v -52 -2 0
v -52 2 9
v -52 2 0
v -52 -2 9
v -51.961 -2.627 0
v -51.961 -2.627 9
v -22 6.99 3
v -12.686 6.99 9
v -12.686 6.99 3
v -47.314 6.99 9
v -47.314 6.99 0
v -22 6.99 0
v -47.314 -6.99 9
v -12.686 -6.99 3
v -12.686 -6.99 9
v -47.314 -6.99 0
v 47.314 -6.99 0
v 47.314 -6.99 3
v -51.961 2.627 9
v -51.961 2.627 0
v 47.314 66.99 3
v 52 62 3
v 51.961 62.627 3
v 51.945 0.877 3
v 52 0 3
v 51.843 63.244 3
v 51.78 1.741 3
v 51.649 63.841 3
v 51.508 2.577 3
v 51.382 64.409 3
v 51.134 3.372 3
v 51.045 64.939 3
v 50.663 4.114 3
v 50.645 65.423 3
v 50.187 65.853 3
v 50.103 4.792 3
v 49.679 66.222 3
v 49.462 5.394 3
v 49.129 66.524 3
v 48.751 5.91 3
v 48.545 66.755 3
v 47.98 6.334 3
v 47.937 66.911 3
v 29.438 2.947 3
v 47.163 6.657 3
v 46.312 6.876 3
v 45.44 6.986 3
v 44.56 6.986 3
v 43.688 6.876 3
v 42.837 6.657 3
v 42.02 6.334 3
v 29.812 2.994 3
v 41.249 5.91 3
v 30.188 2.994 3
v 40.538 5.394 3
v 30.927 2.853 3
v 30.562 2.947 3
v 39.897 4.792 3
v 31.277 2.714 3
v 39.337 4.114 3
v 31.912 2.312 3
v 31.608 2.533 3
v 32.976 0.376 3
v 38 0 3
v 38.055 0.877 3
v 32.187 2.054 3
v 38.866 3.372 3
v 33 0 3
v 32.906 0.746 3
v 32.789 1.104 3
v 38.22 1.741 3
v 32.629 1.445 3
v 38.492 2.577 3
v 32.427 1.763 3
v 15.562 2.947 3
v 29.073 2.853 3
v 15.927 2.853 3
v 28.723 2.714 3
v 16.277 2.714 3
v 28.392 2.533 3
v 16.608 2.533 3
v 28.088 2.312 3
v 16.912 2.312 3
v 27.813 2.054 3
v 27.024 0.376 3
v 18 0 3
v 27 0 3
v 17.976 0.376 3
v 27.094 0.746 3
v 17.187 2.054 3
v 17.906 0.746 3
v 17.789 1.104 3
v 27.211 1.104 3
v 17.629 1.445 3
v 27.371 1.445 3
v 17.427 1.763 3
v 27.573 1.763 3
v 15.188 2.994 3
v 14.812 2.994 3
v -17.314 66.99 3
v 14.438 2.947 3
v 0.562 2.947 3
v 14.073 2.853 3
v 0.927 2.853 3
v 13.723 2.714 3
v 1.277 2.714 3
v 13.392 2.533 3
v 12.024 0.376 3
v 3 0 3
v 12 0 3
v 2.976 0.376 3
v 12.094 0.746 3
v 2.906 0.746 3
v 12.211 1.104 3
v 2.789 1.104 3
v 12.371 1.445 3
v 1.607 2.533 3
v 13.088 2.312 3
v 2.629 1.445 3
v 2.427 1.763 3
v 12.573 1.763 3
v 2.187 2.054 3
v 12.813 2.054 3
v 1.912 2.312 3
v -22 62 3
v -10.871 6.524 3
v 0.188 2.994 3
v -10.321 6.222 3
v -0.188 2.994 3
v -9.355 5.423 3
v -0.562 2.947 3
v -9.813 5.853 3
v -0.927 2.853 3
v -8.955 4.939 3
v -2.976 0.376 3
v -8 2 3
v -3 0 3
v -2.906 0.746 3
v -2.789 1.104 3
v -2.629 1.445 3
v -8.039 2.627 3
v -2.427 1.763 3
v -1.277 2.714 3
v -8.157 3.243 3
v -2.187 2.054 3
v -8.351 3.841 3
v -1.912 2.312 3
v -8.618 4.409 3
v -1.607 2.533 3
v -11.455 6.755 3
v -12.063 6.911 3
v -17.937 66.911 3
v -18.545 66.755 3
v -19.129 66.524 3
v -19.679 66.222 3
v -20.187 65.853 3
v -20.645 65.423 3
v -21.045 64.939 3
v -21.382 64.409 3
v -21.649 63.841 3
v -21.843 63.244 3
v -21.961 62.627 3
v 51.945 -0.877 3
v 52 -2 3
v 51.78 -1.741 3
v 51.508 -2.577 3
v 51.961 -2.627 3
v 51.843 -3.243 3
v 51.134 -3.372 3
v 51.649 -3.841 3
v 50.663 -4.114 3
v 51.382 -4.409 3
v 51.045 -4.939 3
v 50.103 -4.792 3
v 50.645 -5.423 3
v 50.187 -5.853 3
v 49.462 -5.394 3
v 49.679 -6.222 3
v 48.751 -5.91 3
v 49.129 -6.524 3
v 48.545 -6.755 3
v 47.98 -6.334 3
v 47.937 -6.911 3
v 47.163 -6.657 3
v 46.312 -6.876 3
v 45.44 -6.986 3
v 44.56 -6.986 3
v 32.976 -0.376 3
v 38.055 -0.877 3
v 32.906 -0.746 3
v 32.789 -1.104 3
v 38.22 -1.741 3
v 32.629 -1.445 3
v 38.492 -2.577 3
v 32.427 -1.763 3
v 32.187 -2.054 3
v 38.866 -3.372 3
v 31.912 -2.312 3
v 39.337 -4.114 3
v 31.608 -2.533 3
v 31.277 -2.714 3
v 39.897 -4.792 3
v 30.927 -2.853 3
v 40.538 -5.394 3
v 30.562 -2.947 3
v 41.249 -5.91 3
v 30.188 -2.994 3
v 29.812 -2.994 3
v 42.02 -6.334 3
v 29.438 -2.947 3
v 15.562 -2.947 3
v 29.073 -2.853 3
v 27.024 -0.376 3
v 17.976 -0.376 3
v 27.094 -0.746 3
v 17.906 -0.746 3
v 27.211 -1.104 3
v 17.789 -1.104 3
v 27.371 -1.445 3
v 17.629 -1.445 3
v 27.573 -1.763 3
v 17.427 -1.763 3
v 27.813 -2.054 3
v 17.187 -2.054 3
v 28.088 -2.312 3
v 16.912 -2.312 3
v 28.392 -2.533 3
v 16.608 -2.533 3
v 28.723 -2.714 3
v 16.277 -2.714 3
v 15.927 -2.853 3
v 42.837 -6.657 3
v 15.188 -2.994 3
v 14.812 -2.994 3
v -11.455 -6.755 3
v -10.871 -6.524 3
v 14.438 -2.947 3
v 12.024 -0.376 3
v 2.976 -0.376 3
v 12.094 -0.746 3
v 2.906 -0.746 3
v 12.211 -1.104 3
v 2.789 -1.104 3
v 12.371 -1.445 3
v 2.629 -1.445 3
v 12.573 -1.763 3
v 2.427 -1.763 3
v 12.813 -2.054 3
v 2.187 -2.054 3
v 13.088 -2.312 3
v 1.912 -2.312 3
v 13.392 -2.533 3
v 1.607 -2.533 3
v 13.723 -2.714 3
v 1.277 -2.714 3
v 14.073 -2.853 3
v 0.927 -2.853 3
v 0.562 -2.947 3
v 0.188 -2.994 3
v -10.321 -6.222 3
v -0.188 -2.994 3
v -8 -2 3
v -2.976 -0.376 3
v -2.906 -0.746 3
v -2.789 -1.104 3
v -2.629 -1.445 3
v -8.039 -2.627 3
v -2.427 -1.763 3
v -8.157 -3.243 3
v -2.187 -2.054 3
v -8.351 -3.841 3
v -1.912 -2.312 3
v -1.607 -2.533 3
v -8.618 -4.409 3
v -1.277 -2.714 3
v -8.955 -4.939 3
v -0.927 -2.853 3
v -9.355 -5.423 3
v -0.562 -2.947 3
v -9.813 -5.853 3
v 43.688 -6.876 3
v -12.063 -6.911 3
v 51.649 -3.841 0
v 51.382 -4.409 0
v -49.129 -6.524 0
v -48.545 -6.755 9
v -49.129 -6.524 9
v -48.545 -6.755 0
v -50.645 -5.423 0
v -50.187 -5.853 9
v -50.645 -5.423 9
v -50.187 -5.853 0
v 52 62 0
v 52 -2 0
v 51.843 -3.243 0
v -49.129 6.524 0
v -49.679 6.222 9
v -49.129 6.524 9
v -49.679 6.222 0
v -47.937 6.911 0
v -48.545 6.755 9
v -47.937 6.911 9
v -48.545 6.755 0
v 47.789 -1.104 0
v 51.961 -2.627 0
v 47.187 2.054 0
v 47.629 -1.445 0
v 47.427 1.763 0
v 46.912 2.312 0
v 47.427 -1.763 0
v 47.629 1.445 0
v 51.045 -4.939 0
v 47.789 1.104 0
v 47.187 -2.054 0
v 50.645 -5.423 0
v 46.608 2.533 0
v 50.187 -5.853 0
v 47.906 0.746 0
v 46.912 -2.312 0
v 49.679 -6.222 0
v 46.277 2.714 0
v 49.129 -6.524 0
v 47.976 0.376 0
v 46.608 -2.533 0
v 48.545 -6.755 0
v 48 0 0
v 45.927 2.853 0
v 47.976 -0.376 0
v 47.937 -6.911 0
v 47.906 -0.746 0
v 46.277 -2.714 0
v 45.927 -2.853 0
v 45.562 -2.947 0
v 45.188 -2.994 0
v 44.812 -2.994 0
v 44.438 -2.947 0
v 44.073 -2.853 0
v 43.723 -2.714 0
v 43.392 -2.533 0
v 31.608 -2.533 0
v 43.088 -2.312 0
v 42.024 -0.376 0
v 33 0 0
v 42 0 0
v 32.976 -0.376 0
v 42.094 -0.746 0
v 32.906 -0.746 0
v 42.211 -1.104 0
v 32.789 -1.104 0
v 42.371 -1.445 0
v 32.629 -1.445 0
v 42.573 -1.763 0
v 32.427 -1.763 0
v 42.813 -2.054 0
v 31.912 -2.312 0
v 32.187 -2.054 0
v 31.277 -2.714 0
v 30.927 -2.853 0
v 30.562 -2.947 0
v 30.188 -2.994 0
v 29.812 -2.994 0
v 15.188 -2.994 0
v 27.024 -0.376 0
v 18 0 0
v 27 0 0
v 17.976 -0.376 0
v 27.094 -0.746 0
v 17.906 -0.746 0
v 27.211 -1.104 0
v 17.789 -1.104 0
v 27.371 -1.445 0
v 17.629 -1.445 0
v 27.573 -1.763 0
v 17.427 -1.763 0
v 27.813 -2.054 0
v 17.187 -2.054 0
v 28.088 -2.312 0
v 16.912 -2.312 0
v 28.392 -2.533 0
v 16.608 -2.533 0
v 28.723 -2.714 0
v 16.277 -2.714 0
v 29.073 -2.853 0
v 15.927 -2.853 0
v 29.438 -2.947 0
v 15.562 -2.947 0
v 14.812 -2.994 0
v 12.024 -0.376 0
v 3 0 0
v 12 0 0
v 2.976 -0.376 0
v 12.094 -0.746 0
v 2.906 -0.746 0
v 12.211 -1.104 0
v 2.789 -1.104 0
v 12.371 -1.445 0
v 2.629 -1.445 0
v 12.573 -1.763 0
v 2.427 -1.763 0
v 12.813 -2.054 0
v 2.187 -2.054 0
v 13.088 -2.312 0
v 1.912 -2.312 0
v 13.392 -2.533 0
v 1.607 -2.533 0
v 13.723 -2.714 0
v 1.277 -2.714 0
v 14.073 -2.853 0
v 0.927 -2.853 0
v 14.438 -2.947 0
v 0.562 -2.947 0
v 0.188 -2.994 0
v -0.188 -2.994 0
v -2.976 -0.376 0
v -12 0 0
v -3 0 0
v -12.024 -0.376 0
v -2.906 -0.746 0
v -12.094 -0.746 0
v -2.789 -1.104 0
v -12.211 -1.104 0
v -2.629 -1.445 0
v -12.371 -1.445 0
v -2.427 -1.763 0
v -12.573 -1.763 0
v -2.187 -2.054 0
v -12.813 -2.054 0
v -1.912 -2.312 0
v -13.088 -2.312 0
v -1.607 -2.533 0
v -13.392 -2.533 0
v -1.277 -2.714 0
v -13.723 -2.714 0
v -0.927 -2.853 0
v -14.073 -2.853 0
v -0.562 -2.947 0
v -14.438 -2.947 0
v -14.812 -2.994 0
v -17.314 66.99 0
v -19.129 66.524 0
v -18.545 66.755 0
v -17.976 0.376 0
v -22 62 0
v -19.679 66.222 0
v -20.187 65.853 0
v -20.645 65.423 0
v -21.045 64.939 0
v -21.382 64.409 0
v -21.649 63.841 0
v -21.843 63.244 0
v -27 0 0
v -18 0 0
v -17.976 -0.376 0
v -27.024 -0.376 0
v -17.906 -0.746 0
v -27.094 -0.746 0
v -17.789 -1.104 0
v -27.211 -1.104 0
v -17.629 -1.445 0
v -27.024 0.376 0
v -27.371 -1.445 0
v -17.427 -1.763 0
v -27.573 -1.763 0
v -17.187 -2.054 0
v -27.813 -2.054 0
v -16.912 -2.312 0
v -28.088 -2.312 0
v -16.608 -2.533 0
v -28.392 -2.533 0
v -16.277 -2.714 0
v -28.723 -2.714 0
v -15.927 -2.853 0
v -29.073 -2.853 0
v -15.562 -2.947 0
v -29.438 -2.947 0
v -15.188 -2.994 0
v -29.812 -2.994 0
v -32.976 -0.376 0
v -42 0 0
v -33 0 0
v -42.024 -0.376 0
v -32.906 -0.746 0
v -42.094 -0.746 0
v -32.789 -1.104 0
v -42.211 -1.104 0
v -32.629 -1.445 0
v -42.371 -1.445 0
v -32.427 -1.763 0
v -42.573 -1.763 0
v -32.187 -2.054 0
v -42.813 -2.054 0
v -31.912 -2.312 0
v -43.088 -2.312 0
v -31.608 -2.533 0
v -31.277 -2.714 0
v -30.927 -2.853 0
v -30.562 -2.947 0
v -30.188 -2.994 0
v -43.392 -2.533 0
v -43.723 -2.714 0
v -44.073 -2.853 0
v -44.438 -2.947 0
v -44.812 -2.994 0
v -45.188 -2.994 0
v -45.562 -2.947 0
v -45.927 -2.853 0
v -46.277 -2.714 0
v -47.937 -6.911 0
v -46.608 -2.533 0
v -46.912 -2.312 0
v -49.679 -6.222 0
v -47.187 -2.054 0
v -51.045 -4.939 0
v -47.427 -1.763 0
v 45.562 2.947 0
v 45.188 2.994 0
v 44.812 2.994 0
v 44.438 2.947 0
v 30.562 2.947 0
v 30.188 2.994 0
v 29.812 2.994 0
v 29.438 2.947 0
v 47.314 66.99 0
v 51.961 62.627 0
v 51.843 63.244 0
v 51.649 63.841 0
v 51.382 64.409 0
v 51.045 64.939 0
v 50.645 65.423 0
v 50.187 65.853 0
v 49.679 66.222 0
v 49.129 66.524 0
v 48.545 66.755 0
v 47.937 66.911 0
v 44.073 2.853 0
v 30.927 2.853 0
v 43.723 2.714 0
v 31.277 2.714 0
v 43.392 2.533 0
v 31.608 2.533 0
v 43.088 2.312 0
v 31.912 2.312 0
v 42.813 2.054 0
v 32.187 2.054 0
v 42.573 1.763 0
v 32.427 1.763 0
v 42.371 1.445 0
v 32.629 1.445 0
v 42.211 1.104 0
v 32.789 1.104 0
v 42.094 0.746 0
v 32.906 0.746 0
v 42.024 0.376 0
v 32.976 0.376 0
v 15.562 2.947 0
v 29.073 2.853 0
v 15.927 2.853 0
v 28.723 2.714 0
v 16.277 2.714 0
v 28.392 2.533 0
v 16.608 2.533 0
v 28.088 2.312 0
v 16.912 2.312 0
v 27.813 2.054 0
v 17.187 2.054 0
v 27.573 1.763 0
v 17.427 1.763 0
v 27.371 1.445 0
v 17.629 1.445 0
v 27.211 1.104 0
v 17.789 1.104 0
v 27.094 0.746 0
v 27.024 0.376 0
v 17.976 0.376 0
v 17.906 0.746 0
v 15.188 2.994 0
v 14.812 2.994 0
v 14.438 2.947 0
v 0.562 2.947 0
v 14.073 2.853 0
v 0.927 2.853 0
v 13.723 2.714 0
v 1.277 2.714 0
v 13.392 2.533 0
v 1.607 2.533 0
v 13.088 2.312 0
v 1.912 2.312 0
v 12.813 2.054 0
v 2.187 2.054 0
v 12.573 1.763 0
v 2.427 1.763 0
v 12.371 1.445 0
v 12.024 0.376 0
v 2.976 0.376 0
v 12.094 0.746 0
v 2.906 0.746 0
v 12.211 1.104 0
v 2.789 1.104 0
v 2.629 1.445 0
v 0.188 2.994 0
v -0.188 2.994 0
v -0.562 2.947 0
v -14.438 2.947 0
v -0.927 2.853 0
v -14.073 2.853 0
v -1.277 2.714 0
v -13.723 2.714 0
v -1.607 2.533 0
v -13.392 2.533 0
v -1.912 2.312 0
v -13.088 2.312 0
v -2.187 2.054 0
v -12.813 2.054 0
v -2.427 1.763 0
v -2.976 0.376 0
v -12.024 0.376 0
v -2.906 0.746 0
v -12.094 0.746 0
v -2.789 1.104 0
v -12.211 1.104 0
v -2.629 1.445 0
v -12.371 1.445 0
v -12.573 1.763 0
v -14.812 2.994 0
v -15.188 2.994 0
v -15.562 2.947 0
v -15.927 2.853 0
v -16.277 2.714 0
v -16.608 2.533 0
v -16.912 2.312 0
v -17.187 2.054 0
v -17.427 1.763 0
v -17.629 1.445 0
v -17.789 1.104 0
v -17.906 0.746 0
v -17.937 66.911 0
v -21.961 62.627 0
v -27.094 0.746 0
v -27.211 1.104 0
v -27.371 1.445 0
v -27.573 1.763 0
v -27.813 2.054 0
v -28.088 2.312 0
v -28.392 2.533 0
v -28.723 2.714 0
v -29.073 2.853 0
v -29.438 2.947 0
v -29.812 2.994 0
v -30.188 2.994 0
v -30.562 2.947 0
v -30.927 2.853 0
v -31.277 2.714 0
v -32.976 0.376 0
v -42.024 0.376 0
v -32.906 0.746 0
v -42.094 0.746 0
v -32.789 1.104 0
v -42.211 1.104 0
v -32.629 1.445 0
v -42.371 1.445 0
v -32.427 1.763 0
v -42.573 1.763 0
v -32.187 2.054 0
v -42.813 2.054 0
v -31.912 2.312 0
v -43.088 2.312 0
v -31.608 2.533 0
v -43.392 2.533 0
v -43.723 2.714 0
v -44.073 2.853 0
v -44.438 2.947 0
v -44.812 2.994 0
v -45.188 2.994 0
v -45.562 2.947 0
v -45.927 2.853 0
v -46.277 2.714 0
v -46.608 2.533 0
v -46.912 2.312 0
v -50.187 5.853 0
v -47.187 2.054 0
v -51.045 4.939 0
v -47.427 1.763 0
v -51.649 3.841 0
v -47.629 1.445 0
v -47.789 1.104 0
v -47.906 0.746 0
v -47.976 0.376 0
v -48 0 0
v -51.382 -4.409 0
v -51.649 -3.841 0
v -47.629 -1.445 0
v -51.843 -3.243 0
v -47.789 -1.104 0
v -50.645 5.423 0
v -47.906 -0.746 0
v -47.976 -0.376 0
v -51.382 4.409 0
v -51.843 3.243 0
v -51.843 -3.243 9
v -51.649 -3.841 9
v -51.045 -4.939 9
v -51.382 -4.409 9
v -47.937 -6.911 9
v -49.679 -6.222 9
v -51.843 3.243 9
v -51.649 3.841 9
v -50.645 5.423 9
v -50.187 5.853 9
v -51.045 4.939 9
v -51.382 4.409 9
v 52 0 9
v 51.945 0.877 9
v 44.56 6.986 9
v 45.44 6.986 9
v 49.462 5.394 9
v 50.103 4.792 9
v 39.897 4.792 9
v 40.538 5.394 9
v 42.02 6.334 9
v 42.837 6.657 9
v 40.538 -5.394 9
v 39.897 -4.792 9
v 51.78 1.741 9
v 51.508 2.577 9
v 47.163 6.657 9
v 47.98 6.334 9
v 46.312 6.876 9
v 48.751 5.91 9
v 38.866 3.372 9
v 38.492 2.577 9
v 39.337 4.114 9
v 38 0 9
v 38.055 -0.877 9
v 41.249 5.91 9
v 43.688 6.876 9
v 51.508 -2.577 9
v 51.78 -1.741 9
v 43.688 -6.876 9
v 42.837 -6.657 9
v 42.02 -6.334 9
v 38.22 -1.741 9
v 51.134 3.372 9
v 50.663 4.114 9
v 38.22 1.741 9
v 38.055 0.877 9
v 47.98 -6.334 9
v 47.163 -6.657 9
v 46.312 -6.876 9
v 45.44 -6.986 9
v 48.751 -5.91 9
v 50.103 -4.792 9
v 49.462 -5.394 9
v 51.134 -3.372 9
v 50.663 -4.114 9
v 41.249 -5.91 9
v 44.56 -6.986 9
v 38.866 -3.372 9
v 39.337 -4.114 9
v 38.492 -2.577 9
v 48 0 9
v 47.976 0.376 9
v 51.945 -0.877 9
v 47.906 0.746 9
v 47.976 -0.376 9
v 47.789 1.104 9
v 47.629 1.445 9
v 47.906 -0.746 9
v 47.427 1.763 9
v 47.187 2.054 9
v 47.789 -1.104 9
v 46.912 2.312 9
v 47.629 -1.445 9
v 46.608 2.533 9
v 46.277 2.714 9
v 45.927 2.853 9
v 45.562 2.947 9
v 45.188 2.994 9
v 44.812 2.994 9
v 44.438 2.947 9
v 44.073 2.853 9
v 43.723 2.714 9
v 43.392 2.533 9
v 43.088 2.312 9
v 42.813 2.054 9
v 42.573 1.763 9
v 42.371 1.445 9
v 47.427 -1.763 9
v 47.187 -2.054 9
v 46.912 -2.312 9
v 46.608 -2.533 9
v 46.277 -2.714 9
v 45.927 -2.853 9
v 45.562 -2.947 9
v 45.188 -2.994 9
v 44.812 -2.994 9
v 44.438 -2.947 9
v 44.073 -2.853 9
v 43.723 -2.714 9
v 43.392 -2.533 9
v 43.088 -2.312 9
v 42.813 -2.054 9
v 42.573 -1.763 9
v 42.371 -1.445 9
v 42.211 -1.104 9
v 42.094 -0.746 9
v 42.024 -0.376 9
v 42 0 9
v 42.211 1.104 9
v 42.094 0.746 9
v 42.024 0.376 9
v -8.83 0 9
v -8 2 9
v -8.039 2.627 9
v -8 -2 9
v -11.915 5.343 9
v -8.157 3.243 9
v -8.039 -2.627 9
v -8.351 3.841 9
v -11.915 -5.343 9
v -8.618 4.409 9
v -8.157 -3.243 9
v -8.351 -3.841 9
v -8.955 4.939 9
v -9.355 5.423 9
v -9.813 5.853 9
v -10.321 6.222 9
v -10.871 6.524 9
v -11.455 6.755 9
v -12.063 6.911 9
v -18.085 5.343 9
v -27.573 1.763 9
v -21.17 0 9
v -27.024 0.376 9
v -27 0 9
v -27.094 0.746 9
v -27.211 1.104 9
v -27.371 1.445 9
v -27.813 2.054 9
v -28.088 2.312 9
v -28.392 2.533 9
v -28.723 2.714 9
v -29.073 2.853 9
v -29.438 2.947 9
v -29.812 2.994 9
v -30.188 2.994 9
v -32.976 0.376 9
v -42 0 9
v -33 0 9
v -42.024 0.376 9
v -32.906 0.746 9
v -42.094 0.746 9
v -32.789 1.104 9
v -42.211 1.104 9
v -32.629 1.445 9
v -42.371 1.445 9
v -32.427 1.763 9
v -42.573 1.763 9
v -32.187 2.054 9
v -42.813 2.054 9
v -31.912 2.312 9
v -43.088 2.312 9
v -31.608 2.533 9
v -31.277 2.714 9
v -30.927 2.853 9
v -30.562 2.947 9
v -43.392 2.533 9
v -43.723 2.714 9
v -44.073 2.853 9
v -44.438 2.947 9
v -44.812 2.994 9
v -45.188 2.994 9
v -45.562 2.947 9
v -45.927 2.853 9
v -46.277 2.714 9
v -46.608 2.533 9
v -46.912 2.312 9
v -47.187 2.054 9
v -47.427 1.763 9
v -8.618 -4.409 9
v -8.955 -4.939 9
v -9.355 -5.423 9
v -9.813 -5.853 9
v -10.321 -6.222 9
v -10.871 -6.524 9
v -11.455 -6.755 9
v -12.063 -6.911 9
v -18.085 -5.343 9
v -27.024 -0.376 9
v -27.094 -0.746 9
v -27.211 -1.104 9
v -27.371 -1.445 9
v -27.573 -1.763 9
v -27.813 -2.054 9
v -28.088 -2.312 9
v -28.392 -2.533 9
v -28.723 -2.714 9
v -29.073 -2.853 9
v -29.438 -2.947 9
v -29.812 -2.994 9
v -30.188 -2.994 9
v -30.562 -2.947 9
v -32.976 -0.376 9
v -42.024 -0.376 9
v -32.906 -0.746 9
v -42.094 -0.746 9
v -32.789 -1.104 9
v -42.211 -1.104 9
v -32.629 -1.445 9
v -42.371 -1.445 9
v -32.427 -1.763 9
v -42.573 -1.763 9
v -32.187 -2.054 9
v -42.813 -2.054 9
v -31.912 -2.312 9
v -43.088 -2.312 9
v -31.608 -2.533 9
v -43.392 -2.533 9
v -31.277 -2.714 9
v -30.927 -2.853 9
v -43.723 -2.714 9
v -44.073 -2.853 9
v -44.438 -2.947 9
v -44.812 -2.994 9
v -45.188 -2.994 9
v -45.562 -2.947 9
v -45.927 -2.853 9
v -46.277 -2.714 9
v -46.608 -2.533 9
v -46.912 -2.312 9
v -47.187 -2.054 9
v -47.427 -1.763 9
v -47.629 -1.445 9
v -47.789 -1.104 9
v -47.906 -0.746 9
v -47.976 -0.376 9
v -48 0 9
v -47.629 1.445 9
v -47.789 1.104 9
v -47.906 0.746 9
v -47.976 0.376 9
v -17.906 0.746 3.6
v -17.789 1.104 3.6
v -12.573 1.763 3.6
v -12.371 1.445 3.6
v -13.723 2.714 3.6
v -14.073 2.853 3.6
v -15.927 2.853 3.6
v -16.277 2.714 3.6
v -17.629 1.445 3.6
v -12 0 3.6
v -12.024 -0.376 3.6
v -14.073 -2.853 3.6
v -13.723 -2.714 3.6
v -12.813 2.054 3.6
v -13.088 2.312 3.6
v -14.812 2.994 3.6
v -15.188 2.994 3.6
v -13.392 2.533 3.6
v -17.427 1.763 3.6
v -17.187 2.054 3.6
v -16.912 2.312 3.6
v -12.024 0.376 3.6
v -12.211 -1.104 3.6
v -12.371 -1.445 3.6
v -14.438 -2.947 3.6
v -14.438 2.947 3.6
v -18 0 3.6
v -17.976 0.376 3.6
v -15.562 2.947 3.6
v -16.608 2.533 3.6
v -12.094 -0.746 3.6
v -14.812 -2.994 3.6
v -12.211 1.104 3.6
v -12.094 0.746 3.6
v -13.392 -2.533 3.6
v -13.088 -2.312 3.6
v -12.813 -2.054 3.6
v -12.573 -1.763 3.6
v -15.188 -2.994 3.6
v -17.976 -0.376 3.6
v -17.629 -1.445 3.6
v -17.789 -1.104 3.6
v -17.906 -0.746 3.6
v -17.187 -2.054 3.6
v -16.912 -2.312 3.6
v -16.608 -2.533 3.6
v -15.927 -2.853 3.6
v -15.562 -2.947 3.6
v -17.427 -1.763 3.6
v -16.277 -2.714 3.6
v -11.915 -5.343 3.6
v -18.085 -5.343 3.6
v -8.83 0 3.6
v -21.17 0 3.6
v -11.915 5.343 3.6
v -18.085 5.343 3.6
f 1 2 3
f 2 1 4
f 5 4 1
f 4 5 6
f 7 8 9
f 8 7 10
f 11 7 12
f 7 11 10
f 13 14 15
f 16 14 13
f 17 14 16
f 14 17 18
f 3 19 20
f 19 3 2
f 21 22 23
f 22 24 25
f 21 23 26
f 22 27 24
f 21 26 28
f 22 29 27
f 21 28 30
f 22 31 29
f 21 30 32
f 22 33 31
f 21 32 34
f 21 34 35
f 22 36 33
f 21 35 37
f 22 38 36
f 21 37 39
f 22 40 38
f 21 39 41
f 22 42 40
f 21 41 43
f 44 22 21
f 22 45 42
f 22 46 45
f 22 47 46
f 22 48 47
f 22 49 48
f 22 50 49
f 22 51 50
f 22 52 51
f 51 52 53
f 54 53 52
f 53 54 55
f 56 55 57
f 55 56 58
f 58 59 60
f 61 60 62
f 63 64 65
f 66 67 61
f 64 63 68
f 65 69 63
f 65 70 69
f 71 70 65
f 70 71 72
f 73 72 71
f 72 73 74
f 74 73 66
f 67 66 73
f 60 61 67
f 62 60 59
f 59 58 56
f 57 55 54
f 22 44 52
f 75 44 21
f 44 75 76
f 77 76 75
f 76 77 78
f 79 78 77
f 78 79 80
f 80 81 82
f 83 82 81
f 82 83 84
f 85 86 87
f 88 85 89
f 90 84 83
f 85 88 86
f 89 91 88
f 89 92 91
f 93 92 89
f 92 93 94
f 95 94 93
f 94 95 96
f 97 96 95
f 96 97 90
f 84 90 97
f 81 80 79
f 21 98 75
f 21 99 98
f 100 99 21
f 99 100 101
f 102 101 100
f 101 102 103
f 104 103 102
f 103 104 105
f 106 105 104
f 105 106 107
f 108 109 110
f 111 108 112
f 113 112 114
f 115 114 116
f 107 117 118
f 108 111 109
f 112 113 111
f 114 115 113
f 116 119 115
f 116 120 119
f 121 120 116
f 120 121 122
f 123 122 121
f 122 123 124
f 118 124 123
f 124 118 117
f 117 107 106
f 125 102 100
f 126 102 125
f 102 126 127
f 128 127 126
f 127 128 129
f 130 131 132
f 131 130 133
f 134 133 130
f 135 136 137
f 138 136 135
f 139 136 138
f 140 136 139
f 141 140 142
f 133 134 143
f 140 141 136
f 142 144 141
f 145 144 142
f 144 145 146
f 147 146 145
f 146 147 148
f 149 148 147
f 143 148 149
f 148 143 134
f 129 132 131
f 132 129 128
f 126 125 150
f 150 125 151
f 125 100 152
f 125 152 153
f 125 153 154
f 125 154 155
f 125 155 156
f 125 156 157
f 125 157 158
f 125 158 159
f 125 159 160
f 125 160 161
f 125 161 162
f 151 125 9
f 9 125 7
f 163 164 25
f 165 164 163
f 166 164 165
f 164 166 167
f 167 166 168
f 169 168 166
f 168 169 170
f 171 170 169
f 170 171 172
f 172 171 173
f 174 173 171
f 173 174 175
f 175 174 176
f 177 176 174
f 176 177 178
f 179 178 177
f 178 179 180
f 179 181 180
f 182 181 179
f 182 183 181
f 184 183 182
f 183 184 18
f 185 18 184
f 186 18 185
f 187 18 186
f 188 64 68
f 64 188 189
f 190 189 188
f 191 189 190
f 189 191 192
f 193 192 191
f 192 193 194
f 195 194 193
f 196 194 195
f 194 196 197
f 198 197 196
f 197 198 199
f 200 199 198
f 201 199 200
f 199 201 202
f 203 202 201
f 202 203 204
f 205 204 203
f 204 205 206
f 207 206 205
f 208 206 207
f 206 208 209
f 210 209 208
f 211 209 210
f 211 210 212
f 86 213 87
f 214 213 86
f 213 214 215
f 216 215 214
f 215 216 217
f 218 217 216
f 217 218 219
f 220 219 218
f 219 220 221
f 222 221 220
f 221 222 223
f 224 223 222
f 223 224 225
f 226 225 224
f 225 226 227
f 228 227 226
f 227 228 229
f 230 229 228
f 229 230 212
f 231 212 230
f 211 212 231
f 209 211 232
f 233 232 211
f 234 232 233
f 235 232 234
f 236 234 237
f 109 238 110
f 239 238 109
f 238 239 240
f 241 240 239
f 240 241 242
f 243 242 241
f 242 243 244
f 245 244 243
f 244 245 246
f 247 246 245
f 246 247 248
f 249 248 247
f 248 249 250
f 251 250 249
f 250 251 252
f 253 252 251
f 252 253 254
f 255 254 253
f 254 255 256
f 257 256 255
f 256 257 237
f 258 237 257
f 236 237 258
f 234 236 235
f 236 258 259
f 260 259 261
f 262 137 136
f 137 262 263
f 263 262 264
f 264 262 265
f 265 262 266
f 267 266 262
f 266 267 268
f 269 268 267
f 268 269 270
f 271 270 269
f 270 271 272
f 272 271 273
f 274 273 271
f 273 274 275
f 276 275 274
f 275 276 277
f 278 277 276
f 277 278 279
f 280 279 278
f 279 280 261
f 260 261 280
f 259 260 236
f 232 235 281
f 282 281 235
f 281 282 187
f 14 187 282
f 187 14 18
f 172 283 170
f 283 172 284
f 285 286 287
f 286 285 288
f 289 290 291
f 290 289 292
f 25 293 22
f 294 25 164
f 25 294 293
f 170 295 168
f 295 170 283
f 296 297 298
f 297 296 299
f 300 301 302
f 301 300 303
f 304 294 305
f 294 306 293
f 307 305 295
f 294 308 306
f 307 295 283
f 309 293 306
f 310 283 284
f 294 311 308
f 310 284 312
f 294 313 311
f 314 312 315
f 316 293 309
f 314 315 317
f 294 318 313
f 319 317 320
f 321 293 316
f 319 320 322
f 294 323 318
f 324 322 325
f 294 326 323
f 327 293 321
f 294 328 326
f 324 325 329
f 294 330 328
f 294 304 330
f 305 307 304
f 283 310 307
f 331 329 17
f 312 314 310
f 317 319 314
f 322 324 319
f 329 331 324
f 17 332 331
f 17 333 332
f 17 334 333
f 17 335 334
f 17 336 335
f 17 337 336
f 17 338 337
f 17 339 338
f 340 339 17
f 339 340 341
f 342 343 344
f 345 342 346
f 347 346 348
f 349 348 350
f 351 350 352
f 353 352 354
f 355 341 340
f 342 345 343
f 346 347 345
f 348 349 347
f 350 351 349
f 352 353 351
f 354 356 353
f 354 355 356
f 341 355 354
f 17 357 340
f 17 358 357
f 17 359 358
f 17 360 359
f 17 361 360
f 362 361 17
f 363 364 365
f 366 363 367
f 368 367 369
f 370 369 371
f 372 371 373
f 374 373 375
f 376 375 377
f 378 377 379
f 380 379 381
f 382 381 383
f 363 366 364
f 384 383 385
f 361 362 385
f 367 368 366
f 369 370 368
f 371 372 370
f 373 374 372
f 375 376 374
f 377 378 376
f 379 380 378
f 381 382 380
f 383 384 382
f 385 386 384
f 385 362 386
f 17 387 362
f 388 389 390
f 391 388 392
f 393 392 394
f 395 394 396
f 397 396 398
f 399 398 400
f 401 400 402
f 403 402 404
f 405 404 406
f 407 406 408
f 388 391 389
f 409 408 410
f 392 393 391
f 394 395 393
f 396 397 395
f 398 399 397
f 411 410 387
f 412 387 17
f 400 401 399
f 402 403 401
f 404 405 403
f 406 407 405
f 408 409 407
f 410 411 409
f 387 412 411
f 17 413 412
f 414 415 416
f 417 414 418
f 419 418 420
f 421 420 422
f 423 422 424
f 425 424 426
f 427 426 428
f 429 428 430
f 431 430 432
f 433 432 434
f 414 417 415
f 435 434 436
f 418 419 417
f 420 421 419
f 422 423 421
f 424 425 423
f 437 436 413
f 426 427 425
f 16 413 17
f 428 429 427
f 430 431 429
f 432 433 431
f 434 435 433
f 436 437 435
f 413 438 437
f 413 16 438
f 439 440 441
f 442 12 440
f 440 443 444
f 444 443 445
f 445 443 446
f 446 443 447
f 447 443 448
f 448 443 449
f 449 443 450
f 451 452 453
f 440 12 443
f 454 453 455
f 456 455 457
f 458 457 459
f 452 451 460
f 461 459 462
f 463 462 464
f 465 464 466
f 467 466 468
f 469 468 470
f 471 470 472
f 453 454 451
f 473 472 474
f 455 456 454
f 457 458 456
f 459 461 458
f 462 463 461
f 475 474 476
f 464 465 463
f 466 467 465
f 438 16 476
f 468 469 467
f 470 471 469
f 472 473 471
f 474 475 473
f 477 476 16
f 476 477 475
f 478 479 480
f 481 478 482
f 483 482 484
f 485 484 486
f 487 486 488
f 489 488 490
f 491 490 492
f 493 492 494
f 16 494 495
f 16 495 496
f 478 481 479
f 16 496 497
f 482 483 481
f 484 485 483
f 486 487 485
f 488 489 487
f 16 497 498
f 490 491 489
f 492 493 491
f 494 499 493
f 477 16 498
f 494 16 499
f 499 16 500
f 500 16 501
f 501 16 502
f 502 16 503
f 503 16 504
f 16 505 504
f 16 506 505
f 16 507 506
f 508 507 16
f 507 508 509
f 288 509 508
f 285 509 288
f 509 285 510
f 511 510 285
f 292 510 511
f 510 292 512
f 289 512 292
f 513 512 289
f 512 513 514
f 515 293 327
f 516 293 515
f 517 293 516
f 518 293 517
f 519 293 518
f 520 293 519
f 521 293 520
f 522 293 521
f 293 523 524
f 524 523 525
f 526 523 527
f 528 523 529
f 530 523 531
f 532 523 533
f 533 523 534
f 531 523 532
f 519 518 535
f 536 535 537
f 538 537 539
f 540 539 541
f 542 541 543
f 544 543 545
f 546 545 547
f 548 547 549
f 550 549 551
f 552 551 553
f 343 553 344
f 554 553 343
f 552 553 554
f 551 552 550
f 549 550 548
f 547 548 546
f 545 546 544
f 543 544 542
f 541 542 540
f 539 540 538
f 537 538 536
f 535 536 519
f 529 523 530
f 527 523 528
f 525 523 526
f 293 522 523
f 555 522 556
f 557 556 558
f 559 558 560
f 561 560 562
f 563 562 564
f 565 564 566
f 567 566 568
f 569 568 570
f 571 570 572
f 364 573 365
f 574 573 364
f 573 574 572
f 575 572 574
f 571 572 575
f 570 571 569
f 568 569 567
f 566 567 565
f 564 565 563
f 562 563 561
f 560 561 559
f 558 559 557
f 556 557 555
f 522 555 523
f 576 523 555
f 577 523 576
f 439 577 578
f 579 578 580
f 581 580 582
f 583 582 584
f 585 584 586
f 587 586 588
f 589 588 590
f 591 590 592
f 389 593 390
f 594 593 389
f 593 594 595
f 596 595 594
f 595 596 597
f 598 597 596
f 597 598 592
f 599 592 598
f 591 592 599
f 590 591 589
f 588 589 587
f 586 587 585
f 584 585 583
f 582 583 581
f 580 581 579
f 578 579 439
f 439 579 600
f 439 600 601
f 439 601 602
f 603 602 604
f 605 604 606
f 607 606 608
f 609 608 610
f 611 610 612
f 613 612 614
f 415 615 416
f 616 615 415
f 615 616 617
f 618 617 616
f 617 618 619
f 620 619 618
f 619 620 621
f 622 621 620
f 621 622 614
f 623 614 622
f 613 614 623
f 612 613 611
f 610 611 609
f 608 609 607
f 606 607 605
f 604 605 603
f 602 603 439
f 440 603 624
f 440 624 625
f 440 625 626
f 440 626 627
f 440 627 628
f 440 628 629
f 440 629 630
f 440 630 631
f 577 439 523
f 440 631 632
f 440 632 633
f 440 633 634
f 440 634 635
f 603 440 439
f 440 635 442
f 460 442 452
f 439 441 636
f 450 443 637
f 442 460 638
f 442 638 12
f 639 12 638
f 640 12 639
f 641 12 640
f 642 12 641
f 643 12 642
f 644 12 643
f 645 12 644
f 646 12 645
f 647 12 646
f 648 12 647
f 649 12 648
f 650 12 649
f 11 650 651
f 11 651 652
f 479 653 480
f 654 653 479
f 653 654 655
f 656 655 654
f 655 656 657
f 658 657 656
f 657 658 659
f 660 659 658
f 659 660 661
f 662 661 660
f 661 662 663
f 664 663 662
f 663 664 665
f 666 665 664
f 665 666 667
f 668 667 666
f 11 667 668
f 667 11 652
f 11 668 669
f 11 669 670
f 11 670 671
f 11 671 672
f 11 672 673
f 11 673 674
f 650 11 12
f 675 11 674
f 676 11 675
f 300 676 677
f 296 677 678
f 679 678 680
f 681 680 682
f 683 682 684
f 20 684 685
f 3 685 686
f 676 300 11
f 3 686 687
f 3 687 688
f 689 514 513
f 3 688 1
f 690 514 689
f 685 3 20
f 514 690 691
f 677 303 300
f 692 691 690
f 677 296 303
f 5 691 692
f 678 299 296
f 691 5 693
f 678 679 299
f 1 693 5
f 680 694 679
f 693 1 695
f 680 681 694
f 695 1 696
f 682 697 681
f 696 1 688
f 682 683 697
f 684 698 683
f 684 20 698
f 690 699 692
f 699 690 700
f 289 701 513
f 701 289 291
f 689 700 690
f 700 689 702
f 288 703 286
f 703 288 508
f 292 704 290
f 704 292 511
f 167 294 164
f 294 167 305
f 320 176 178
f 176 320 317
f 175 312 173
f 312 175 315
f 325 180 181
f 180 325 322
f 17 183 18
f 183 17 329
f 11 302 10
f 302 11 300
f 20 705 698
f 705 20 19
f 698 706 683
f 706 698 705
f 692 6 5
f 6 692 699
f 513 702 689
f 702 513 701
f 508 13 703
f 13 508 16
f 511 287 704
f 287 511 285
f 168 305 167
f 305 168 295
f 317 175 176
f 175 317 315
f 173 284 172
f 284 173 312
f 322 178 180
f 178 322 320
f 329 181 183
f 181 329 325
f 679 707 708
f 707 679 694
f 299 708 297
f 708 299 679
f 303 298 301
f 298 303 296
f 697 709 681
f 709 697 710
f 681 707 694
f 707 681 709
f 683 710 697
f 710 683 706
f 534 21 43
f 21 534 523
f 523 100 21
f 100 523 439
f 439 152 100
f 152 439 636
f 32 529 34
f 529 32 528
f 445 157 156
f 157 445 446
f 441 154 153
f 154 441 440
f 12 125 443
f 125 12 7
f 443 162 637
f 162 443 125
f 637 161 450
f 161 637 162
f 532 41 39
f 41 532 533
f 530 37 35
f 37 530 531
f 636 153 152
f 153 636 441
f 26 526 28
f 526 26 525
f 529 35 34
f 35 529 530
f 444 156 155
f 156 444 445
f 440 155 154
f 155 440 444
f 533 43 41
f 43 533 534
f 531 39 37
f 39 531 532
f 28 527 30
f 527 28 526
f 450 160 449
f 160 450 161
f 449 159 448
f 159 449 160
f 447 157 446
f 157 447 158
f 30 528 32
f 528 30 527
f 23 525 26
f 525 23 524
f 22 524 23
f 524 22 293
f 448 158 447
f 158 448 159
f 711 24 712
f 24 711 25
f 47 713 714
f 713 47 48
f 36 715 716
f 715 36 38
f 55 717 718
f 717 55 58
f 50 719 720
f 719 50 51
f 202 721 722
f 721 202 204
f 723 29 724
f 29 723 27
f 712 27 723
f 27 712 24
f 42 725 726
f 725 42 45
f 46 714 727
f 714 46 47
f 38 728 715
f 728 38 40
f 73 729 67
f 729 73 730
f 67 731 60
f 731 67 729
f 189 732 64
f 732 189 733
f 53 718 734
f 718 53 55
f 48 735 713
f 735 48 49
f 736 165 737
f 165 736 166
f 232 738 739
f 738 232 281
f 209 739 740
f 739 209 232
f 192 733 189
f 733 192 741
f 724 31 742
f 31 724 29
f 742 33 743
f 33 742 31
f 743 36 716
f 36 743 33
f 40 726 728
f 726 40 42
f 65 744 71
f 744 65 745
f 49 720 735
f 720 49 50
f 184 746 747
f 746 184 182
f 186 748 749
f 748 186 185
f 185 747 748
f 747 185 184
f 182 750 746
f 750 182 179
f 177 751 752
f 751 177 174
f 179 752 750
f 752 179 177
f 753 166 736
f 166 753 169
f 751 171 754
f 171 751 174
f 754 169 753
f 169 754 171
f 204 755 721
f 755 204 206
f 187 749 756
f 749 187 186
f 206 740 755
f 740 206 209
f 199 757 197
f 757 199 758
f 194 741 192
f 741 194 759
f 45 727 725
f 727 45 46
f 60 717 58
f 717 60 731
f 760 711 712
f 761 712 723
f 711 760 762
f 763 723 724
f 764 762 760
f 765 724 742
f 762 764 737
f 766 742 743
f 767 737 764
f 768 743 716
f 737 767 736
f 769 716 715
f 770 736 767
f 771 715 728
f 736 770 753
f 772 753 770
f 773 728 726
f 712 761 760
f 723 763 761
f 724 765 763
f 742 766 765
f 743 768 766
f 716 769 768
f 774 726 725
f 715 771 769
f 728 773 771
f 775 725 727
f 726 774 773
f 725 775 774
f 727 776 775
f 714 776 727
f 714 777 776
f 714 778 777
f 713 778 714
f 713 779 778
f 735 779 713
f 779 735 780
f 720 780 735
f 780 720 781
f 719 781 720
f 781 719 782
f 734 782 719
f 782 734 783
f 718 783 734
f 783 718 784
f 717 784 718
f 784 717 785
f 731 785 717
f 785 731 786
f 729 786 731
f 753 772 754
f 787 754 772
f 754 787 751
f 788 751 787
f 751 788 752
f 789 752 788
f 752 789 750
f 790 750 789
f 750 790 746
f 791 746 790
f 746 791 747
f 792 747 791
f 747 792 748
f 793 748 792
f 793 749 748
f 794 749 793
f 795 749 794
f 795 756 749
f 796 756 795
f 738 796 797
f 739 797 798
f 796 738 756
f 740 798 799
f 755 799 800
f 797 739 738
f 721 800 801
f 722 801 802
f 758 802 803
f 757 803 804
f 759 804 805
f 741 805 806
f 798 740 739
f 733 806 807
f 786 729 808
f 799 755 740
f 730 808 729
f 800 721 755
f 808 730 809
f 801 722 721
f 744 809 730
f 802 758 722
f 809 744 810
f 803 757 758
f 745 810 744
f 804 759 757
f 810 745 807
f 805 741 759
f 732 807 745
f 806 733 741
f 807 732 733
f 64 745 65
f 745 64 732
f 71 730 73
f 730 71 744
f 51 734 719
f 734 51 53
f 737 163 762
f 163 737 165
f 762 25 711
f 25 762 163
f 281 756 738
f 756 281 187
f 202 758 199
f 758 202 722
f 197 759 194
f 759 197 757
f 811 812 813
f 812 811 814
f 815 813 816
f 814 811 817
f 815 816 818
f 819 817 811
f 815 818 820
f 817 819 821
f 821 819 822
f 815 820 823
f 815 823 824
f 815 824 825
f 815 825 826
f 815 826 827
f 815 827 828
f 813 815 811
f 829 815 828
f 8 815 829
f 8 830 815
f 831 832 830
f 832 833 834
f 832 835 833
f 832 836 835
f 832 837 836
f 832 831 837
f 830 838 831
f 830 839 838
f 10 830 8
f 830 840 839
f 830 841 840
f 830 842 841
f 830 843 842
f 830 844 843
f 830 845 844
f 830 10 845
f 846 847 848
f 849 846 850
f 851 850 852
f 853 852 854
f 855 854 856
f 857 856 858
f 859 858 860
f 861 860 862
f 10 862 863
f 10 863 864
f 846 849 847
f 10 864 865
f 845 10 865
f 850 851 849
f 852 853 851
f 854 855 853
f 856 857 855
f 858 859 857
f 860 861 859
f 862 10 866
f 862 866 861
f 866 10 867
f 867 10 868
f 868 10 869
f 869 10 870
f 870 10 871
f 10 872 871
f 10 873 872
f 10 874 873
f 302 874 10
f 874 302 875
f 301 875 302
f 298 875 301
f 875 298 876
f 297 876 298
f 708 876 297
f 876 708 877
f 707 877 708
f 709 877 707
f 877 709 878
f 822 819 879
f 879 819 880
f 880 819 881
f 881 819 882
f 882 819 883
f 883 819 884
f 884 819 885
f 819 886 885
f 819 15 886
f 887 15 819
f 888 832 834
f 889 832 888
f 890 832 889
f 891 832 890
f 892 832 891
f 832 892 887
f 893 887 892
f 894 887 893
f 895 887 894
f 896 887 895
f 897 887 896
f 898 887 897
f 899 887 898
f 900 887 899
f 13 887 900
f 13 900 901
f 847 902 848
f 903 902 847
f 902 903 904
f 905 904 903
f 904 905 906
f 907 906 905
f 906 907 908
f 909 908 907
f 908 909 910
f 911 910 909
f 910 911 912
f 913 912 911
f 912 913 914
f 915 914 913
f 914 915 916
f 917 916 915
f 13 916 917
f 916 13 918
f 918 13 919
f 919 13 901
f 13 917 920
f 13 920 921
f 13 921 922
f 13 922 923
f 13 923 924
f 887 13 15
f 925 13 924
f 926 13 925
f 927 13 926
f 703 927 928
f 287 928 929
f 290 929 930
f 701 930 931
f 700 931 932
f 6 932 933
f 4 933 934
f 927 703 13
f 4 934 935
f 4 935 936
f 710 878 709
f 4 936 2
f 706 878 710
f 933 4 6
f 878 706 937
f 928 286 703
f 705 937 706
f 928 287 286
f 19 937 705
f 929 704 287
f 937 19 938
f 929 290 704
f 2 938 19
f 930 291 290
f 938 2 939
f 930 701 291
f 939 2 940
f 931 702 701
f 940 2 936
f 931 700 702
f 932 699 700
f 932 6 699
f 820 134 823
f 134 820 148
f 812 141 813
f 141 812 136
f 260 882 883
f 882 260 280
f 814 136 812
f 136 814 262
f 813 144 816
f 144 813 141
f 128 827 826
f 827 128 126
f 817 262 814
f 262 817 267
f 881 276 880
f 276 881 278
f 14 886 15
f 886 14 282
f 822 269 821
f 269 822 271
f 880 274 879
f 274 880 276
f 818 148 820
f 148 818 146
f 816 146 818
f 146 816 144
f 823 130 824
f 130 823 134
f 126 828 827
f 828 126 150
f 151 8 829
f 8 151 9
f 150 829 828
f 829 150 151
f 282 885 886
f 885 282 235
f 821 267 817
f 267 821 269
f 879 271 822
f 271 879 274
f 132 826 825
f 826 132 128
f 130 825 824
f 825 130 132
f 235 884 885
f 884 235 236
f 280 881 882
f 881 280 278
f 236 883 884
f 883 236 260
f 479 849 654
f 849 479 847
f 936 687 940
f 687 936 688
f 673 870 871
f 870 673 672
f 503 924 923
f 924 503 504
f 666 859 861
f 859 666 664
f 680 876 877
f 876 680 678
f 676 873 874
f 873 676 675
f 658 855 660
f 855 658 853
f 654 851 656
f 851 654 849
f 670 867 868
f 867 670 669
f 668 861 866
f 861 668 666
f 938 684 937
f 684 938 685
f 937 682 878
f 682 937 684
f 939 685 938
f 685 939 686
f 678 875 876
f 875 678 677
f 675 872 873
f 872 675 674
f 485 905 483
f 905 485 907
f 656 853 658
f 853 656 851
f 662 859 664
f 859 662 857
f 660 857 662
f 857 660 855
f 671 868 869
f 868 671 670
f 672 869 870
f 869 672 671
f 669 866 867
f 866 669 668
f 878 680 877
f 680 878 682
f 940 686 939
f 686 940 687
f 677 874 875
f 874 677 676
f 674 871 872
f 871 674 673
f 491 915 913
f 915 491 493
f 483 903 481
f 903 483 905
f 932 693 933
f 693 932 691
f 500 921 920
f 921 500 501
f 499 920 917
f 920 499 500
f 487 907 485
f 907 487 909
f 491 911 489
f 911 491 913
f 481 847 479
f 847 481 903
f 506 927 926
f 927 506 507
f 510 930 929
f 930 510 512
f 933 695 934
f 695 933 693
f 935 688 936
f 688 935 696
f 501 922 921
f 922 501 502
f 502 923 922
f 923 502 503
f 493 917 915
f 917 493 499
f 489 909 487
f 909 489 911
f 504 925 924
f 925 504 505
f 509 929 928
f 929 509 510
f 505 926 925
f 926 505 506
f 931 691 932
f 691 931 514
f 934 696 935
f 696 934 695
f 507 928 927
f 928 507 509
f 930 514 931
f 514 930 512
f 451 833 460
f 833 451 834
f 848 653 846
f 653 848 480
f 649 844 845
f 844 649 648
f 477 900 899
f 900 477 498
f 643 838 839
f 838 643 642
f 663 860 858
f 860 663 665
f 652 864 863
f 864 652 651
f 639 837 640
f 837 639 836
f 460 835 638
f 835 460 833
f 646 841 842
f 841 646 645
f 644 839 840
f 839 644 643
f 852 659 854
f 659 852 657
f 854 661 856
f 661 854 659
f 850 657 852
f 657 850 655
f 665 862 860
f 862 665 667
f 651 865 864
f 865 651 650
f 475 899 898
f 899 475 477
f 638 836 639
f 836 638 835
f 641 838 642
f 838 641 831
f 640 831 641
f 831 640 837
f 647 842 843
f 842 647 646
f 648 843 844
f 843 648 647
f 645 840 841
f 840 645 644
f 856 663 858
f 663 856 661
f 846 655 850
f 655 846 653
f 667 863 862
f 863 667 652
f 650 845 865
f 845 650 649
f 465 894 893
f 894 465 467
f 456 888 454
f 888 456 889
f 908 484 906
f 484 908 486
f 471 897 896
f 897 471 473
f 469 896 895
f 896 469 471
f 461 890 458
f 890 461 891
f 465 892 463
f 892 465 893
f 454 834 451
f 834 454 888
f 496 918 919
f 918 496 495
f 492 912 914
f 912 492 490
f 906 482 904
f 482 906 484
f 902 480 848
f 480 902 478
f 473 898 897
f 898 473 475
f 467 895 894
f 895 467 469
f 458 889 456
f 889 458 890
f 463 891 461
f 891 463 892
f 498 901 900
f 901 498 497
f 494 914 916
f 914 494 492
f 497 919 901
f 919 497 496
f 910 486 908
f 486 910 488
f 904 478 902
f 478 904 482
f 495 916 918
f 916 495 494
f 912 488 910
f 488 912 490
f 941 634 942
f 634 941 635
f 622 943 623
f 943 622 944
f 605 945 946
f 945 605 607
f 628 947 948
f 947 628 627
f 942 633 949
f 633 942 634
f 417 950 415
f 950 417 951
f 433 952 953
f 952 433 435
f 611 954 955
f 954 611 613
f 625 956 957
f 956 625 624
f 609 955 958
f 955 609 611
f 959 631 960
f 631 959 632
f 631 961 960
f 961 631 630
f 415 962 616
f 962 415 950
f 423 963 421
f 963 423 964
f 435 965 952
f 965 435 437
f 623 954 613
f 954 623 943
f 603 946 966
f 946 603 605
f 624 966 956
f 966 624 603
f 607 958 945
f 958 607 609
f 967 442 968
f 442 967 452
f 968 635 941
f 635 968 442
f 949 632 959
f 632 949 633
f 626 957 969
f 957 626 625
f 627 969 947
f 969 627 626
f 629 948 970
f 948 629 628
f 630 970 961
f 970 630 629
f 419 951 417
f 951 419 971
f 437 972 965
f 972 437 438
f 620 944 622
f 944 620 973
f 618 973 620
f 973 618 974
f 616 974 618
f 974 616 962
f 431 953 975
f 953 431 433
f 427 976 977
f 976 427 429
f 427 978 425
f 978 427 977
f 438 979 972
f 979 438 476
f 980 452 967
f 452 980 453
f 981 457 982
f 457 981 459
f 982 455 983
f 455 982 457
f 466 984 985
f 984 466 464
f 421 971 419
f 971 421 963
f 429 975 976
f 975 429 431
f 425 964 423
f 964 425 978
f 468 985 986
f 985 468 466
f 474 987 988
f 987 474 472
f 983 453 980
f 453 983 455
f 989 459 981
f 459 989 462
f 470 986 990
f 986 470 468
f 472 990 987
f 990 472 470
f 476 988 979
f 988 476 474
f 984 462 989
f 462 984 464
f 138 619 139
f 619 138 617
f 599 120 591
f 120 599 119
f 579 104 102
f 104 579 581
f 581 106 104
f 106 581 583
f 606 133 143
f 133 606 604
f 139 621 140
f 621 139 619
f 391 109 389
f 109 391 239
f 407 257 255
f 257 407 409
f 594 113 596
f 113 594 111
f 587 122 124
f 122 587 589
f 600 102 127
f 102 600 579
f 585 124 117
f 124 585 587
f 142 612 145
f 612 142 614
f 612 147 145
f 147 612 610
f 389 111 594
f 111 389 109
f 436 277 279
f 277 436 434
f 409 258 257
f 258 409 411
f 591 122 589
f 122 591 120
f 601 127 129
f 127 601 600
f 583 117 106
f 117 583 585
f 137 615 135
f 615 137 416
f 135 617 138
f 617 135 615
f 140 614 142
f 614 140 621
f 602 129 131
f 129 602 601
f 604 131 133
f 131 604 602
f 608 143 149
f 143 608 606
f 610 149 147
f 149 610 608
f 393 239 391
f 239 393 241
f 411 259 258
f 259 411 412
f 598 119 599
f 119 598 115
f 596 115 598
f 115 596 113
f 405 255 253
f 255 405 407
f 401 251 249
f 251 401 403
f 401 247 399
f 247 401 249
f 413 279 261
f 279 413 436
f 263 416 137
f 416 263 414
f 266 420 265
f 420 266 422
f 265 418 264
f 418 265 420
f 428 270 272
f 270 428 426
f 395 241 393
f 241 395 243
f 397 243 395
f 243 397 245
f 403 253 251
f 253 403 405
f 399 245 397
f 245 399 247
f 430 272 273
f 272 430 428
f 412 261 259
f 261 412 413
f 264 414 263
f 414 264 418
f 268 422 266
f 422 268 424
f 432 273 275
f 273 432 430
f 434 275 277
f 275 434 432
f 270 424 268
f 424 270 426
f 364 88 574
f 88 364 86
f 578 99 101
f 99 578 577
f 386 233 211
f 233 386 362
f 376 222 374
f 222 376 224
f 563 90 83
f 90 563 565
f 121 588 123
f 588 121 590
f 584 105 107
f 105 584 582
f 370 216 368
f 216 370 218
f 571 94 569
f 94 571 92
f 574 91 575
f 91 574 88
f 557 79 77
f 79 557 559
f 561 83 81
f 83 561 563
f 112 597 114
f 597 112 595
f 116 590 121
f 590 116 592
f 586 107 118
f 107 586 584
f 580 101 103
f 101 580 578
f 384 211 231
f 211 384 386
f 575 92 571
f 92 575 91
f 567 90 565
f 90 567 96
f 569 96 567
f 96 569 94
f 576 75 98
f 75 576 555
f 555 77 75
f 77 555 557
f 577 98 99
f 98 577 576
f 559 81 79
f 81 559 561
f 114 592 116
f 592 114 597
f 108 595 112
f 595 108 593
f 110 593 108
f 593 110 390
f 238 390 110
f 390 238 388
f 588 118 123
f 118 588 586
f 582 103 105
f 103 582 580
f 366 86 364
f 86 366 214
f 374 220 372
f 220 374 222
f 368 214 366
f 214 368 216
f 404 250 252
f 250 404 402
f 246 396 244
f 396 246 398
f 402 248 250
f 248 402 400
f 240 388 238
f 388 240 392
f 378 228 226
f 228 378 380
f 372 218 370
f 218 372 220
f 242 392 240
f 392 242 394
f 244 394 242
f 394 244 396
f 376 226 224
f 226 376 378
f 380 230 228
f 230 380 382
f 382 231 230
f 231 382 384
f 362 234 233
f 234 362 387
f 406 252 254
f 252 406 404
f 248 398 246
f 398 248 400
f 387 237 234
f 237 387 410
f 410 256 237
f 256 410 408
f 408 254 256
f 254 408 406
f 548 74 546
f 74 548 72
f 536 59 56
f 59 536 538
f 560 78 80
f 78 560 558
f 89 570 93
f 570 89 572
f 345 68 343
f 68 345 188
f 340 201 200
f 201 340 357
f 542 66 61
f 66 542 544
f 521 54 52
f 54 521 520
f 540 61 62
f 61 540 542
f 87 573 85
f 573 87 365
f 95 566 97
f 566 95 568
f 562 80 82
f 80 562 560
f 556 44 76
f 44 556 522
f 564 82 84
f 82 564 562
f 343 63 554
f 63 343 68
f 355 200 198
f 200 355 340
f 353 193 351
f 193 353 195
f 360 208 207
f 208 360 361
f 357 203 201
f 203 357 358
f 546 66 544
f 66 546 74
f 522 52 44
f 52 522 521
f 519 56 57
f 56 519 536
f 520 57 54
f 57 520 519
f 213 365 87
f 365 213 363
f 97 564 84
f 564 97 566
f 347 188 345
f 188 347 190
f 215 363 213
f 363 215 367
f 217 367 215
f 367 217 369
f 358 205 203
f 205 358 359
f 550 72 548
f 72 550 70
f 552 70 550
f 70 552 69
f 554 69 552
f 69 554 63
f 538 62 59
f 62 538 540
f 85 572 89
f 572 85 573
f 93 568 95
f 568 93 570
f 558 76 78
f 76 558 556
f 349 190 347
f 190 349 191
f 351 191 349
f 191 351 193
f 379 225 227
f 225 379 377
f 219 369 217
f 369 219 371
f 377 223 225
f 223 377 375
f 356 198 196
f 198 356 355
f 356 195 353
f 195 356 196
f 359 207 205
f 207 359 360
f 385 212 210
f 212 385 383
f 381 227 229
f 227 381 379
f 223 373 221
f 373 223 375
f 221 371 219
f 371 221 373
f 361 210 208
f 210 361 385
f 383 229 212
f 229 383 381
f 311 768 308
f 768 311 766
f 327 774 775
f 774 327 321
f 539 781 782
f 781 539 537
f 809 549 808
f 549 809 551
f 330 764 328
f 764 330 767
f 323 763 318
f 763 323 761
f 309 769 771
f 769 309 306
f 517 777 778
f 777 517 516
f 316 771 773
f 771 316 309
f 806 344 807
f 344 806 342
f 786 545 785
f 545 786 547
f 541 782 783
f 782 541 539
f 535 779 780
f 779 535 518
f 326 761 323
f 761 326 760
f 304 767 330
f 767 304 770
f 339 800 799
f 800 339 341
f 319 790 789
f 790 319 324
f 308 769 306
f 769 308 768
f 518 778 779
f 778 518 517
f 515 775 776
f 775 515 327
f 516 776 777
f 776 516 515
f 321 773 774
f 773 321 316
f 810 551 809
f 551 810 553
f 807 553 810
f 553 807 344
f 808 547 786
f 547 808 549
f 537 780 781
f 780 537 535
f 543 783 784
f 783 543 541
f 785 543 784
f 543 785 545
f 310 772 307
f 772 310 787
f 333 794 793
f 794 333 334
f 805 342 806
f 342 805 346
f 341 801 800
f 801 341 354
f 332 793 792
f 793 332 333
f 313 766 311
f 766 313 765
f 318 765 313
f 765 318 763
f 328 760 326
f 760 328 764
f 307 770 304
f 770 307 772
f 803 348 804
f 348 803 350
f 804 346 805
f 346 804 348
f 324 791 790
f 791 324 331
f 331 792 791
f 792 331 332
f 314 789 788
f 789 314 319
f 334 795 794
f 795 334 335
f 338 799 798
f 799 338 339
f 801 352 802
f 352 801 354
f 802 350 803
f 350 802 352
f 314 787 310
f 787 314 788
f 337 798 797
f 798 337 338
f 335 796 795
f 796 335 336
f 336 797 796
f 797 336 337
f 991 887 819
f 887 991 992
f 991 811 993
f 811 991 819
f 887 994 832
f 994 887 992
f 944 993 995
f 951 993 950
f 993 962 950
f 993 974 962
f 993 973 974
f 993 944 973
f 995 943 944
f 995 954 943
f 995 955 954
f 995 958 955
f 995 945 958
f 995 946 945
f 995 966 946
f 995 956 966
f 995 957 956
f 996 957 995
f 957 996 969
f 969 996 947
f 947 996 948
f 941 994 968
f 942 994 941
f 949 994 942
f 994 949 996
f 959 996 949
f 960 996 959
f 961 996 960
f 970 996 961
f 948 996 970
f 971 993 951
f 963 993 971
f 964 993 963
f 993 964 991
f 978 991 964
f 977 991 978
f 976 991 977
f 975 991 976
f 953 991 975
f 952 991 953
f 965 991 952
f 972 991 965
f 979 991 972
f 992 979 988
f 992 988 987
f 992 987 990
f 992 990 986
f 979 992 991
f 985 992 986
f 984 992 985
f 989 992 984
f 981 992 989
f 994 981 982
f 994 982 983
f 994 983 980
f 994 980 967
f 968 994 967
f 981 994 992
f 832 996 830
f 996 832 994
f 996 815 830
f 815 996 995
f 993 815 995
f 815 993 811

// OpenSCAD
$fn = 50;


difference() {
	union() {
		translate(v = [0, 0, 0]) {
			rotate(a = [0, 0, 0]) {
				hull() {
					translate(v = [-47.0000000000, 2.0000000000, 0]) {
						rotate(a = [0, 0, 0]) {
							translate(v = [0, 0, 0]) {
								rotate(a = [0, 0, 0]) {
									cylinder(h = 3, r = 5);
								}
							}
						}
					}
					translate(v = [47.0000000000, 2.0000000000, 0]) {
						rotate(a = [0, 0, 0]) {
							translate(v = [0, 0, 0]) {
								rotate(a = [0, 0, 0]) {
									cylinder(h = 3, r = 5);
								}
							}
						}
					}
					translate(v = [-47.0000000000, -2.0000000000, 0]) {
						rotate(a = [0, 0, 0]) {
							translate(v = [0, 0, 0]) {
								rotate(a = [0, 0, 0]) {
									cylinder(h = 3, r = 5);
								}
							}
						}
					}
					translate(v = [47.0000000000, -2.0000000000, 0]) {
						rotate(a = [0, 0, 0]) {
							translate(v = [0, 0, 0]) {
								rotate(a = [0, 0, 0]) {
									cylinder(h = 3, r = 5);
								}
							}
						}
					}
				}
			}
		}
		translate(v = [15, 30, 0]) {
			rotate(a = [0, 0, 0]) {
				hull() {
					translate(v = [-32.0000000000, 32.0000000000, 0]) {
						rotate(a = [0, 0, 0]) {
							translate(v = [0, 0, 0]) {
								rotate(a = [0, 0, 0]) {
									cylinder(h = 3, r = 5);
								}
							}
						}
					}
					translate(v = [32.0000000000, 32.0000000000, 0]) {
						rotate(a = [0, 0, 0]) {
							translate(v = [0, 0, 0]) {
								rotate(a = [0, 0, 0]) {
									cylinder(h = 3, r = 5);
								}
							}
						}
					}
					translate(v = [-32.0000000000, -32.0000000000, 0]) {
						rotate(a = [0, 0, 0]) {
							translate(v = [0, 0, 0]) {
								rotate(a = [0, 0, 0]) {
									cylinder(h = 3, r = 5);
								}
							}
						}
					}
					translate(v = [32.0000000000, -32.0000000000, 0]) {
						rotate(a = [0, 0, 0]) {
							translate(v = [0, 0, 0]) {
								rotate(a = [0, 0, 0]) {
									cylinder(h = 3, r = 5);
								}
							}
						}
					}
				}
			}
		}
		translate(v = [45.0000000000, 0, 0]) {
			rotate(a = [0, 0, 0]) {
				cylinder(h = 9, r = 7.0000000000);
			}
		}
		translate(v = [-30.0000000000, 0, 0]) {
			rotate(a = [0, 0, 0]) {
				hull() {
					translate(v = [-17.0000000000, 2.0000000000, 0]) {
						rotate(a = [0, 0, 0]) {
							translate(v = [0, 0, 0]) {
								rotate(a = [0, 0, 0]) {
									cylinder(h = 9, r = 5);
								}
							}
						}
					}
					translate(v = [17.0000000000, 2.0000000000, 0]) {
						rotate(a = [0, 0, 0]) {
							translate(v = [0, 0, 0]) {
								rotate(a = [0, 0, 0]) {
									cylinder(h = 9, r = 5);
								}
							}
						}
					}
					translate(v = [-17.0000000000, -2.0000000000, 0]) {
						rotate(a = [0, 0, 0]) {
							translate(v = [0, 0, 0]) {
								rotate(a = [0, 0, 0]) {
									cylinder(h = 9, r = 5);
								}
							}
						}
					}
					translate(v = [17.0000000000, -2.0000000000, 0]) {
						rotate(a = [0, 0, 0]) {
							translate(v = [0, 0, 0]) {
								rotate(a = [0, 0, 0]) {
									cylinder(h = 9, r = 5);
								}
							}
						}
					}
				}
			}
		}
	}
	union() {
		translate(v = [-45.0000000000, 0.0000000000, 0]) {
			rotate(a = [0, 0, 0]) {
				translate(v = [0, 0, -50]) {
					rotate(a = [0, 0, 0]) {
						cylinder(h = 100, r = 3.0000000000);
					}
				}
			}
		}
		translate(v = [-30.0000000000, 0.0000000000, 0]) {
			rotate(a = [0, 0, 0]) {
				translate(v = [0, 0, -50]) {
					rotate(a = [0, 0, 0]) {
						cylinder(h = 100, r = 3.0000000000);
					}
				}
			}
		}
		translate(v = [-15.0000000000, 0.0000000000, 0]) {
			rotate(a = [0, 0, 0]) {
				translate(v = [0, 0, -50]) {
					rotate(a = [0, 0, 0]) {
						cylinder(h = 100, r = 3.0000000000);
					}
				}
			}
		}
		translate(v = [0.0000000000, 0.0000000000, 0]) {
			rotate(a = [0, 0, 0]) {
				translate(v = [0, 0, -50]) {
					rotate(a = [0, 0, 0]) {
						cylinder(h = 100, r = 3.0000000000);
					}
				}
			}
		}
		translate(v = [15.0000000000, 0.0000000000, 0]) {
			rotate(a = [0, 0, 0]) {
				translate(v = [0, 0, -50]) {
					rotate(a = [0, 0, 0]) {
						cylinder(h = 100, r = 3.0000000000);
					}
				}
			}
		}
		translate(v = [30.0000000000, 0.0000000000, 0]) {
			rotate(a = [0, 0, 0]) {
				translate(v = [0, 0, -50]) {
					rotate(a = [0, 0, 0]) {
						cylinder(h = 100, r = 3.0000000000);
					}
				}
			}
		}
		translate(v = [45.0000000000, 0.0000000000, 0]) {
			rotate(a = [0, 0, 0]) {
				translate(v = [0, 0, -50]) {
					rotate(a = [0, 0, 0]) {
						cylinder(h = 100, r = 3.0000000000);
					}
				}
			}
		}
		translate(v = [-15.0000000000, 0, 3.6000000000]) {
			rotate(a = [0, 0, 0]) {
				#translate(v = [0, 0, 0]) {
					rotate(a = [0, 0, 0]) {
						linear_extrude(height = 5.4000000000) {
							polygon(points = [[6.1700000000, 0.0000000000], [3.0850000000, 5.3433767413], [-3.0850000000, 5.3433767413], [-6.1700000000, 0.0000000000], [-3.0850000000, -5.3433767413], [3.0850000000, -5.3433767413]]);
						}
					}
				}
			}
		}
	}
}
